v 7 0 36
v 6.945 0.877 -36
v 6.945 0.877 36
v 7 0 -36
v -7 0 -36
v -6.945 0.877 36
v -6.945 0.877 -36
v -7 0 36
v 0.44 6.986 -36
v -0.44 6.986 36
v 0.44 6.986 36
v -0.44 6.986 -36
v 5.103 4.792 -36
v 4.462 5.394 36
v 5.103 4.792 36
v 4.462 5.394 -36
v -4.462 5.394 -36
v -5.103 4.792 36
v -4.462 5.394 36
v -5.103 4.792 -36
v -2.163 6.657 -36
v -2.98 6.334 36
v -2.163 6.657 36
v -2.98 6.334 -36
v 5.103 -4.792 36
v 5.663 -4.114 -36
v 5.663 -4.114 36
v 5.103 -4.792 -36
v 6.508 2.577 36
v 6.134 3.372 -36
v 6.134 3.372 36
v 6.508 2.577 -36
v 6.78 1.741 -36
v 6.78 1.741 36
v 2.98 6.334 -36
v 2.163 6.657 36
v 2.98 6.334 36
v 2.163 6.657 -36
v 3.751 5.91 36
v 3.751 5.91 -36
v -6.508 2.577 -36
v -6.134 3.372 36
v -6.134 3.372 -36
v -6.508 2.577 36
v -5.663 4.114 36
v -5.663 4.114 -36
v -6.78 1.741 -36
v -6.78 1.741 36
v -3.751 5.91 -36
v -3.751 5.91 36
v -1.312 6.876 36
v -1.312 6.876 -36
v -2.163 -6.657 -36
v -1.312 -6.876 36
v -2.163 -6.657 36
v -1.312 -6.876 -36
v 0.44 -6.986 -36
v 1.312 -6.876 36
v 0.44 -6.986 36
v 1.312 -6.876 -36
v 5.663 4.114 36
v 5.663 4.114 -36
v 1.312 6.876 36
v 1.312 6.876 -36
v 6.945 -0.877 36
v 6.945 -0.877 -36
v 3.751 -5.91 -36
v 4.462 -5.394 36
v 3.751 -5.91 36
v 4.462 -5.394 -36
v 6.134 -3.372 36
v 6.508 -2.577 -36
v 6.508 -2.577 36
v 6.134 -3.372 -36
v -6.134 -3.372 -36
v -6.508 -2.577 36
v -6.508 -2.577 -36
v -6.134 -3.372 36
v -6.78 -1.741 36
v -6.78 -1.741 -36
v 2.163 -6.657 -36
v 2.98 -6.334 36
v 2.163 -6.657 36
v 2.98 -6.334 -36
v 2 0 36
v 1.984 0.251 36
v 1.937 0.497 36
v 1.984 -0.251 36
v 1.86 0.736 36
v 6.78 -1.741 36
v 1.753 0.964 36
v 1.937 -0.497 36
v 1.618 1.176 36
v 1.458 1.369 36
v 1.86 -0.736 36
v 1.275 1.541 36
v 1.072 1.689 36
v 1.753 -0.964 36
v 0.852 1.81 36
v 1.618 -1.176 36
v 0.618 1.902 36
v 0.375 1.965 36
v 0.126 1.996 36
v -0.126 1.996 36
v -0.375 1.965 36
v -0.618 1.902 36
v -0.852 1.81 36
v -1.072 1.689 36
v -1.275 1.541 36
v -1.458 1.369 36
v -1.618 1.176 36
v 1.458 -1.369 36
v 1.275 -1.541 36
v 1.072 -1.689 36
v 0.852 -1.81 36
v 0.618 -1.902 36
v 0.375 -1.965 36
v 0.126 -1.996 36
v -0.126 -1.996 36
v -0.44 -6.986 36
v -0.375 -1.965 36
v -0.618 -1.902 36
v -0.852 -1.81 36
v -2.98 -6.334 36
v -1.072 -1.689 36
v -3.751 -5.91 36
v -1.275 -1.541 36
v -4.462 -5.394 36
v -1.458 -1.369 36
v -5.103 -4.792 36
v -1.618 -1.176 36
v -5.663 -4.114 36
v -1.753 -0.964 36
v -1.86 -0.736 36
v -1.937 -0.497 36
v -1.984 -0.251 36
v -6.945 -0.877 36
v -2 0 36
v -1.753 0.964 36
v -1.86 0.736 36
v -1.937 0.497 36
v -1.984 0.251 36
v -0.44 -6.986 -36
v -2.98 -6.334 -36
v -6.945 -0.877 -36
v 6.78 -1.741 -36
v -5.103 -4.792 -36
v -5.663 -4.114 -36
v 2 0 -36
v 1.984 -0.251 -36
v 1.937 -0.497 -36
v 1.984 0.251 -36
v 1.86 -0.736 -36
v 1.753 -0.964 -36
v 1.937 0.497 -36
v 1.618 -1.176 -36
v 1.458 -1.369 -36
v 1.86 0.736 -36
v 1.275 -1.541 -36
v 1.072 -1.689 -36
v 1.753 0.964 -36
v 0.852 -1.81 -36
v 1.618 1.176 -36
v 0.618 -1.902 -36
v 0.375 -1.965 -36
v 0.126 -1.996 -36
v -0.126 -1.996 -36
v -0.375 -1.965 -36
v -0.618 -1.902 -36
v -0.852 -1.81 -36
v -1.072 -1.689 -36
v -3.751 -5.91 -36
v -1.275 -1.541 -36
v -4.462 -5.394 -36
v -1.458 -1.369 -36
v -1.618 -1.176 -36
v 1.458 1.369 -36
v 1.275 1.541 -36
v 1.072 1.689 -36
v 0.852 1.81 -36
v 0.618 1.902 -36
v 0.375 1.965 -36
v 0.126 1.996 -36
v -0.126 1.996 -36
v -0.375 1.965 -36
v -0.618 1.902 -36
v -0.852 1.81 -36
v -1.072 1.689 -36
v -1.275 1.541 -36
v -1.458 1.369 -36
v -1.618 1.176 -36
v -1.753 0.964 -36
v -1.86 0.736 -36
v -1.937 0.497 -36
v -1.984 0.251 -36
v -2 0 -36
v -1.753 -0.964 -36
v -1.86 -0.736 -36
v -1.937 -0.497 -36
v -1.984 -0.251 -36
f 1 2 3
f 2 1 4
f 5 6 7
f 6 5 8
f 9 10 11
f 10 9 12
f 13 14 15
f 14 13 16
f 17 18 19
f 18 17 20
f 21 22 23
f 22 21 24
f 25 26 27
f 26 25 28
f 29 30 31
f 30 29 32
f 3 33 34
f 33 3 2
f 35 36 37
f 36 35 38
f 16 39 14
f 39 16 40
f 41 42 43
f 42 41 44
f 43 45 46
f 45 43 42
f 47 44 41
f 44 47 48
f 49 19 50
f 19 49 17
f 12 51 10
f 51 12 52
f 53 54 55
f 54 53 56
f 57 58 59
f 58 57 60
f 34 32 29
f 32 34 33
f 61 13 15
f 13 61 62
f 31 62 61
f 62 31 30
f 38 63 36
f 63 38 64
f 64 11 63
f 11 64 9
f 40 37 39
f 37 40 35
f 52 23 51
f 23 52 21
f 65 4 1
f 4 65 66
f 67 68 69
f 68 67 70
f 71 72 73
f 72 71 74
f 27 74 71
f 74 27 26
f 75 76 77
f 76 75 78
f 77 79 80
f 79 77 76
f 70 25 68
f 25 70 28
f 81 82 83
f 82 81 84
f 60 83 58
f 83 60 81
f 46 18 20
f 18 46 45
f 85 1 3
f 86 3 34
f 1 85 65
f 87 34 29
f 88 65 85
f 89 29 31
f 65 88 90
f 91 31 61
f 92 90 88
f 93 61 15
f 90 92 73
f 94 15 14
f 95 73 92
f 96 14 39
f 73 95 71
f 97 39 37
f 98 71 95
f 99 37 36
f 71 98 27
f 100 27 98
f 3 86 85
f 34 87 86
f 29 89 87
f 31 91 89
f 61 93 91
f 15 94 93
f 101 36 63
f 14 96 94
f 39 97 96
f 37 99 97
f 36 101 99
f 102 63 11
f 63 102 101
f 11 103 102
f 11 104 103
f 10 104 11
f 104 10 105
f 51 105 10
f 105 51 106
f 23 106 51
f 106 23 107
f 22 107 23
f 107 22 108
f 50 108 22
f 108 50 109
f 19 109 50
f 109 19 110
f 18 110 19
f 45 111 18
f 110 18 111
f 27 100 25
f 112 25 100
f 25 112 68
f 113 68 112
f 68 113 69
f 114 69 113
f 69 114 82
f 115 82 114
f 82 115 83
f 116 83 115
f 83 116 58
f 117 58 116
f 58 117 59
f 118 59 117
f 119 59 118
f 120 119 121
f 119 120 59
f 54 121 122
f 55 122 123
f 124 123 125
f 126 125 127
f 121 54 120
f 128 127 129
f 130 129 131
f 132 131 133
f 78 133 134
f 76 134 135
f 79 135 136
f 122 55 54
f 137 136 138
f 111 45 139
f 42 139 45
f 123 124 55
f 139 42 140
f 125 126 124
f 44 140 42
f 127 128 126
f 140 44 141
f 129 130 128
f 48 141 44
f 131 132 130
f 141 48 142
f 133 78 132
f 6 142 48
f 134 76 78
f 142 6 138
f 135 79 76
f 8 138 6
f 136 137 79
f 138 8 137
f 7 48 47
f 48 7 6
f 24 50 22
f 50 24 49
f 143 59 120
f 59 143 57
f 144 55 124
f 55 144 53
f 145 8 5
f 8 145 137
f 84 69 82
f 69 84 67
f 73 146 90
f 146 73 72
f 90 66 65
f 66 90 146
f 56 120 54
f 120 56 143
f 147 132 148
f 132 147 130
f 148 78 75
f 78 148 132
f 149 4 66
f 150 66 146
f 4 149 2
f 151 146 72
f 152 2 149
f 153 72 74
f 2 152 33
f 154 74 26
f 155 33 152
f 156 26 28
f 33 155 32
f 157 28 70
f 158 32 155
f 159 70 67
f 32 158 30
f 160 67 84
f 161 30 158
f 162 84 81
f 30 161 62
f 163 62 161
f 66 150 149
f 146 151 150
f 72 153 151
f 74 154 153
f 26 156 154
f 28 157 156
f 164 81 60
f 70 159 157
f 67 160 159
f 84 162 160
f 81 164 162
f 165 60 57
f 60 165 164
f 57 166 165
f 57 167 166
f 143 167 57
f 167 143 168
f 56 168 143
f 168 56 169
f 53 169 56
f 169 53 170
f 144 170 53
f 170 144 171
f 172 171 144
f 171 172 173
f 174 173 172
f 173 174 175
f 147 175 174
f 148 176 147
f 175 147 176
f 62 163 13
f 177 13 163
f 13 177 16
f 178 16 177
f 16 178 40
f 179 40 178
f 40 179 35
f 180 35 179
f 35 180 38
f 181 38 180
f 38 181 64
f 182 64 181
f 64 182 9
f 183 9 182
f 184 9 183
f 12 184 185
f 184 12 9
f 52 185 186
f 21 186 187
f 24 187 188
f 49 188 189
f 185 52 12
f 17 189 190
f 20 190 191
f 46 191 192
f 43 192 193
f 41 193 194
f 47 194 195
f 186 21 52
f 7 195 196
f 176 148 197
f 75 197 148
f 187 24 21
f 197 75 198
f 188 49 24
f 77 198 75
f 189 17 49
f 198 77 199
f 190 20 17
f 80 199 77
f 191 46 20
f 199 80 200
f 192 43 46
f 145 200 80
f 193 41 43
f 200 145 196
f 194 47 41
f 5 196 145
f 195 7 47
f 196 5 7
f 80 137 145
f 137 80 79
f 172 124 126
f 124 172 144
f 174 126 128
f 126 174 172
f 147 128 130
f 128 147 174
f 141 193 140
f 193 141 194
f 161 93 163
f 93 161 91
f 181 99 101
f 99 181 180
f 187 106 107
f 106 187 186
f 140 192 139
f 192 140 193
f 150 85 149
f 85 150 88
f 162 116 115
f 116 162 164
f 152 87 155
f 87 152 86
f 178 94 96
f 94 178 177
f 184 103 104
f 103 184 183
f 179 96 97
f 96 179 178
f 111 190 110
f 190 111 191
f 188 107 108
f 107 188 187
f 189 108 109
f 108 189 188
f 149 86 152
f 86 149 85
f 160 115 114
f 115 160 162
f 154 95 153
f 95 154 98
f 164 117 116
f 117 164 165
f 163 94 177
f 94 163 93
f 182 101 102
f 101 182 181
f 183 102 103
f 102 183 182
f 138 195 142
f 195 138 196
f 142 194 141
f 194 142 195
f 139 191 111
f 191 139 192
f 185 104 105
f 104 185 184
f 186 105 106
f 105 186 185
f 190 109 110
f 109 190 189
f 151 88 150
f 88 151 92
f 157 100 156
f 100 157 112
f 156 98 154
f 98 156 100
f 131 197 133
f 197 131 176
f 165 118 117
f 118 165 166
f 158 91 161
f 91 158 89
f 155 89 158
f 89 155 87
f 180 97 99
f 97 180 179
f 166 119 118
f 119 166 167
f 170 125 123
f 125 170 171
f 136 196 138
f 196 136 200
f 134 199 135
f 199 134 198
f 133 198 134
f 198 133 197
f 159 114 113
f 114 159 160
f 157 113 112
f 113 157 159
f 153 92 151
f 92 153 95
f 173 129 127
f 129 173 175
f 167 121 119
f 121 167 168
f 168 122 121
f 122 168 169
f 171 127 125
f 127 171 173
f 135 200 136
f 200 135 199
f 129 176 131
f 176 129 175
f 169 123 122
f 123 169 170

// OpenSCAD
$fn = 50;


difference() {
	union() {
		translate(v = [0, 0, -36.0000000000]) {
			cylinder(h = 72, r = 7.0000000000);
		}
	}
	union() {
		translate(v = [0, 0, -100.0000000000]) {
			cylinder(h = 200, r = 2.0000000000);
		}
	}
}
